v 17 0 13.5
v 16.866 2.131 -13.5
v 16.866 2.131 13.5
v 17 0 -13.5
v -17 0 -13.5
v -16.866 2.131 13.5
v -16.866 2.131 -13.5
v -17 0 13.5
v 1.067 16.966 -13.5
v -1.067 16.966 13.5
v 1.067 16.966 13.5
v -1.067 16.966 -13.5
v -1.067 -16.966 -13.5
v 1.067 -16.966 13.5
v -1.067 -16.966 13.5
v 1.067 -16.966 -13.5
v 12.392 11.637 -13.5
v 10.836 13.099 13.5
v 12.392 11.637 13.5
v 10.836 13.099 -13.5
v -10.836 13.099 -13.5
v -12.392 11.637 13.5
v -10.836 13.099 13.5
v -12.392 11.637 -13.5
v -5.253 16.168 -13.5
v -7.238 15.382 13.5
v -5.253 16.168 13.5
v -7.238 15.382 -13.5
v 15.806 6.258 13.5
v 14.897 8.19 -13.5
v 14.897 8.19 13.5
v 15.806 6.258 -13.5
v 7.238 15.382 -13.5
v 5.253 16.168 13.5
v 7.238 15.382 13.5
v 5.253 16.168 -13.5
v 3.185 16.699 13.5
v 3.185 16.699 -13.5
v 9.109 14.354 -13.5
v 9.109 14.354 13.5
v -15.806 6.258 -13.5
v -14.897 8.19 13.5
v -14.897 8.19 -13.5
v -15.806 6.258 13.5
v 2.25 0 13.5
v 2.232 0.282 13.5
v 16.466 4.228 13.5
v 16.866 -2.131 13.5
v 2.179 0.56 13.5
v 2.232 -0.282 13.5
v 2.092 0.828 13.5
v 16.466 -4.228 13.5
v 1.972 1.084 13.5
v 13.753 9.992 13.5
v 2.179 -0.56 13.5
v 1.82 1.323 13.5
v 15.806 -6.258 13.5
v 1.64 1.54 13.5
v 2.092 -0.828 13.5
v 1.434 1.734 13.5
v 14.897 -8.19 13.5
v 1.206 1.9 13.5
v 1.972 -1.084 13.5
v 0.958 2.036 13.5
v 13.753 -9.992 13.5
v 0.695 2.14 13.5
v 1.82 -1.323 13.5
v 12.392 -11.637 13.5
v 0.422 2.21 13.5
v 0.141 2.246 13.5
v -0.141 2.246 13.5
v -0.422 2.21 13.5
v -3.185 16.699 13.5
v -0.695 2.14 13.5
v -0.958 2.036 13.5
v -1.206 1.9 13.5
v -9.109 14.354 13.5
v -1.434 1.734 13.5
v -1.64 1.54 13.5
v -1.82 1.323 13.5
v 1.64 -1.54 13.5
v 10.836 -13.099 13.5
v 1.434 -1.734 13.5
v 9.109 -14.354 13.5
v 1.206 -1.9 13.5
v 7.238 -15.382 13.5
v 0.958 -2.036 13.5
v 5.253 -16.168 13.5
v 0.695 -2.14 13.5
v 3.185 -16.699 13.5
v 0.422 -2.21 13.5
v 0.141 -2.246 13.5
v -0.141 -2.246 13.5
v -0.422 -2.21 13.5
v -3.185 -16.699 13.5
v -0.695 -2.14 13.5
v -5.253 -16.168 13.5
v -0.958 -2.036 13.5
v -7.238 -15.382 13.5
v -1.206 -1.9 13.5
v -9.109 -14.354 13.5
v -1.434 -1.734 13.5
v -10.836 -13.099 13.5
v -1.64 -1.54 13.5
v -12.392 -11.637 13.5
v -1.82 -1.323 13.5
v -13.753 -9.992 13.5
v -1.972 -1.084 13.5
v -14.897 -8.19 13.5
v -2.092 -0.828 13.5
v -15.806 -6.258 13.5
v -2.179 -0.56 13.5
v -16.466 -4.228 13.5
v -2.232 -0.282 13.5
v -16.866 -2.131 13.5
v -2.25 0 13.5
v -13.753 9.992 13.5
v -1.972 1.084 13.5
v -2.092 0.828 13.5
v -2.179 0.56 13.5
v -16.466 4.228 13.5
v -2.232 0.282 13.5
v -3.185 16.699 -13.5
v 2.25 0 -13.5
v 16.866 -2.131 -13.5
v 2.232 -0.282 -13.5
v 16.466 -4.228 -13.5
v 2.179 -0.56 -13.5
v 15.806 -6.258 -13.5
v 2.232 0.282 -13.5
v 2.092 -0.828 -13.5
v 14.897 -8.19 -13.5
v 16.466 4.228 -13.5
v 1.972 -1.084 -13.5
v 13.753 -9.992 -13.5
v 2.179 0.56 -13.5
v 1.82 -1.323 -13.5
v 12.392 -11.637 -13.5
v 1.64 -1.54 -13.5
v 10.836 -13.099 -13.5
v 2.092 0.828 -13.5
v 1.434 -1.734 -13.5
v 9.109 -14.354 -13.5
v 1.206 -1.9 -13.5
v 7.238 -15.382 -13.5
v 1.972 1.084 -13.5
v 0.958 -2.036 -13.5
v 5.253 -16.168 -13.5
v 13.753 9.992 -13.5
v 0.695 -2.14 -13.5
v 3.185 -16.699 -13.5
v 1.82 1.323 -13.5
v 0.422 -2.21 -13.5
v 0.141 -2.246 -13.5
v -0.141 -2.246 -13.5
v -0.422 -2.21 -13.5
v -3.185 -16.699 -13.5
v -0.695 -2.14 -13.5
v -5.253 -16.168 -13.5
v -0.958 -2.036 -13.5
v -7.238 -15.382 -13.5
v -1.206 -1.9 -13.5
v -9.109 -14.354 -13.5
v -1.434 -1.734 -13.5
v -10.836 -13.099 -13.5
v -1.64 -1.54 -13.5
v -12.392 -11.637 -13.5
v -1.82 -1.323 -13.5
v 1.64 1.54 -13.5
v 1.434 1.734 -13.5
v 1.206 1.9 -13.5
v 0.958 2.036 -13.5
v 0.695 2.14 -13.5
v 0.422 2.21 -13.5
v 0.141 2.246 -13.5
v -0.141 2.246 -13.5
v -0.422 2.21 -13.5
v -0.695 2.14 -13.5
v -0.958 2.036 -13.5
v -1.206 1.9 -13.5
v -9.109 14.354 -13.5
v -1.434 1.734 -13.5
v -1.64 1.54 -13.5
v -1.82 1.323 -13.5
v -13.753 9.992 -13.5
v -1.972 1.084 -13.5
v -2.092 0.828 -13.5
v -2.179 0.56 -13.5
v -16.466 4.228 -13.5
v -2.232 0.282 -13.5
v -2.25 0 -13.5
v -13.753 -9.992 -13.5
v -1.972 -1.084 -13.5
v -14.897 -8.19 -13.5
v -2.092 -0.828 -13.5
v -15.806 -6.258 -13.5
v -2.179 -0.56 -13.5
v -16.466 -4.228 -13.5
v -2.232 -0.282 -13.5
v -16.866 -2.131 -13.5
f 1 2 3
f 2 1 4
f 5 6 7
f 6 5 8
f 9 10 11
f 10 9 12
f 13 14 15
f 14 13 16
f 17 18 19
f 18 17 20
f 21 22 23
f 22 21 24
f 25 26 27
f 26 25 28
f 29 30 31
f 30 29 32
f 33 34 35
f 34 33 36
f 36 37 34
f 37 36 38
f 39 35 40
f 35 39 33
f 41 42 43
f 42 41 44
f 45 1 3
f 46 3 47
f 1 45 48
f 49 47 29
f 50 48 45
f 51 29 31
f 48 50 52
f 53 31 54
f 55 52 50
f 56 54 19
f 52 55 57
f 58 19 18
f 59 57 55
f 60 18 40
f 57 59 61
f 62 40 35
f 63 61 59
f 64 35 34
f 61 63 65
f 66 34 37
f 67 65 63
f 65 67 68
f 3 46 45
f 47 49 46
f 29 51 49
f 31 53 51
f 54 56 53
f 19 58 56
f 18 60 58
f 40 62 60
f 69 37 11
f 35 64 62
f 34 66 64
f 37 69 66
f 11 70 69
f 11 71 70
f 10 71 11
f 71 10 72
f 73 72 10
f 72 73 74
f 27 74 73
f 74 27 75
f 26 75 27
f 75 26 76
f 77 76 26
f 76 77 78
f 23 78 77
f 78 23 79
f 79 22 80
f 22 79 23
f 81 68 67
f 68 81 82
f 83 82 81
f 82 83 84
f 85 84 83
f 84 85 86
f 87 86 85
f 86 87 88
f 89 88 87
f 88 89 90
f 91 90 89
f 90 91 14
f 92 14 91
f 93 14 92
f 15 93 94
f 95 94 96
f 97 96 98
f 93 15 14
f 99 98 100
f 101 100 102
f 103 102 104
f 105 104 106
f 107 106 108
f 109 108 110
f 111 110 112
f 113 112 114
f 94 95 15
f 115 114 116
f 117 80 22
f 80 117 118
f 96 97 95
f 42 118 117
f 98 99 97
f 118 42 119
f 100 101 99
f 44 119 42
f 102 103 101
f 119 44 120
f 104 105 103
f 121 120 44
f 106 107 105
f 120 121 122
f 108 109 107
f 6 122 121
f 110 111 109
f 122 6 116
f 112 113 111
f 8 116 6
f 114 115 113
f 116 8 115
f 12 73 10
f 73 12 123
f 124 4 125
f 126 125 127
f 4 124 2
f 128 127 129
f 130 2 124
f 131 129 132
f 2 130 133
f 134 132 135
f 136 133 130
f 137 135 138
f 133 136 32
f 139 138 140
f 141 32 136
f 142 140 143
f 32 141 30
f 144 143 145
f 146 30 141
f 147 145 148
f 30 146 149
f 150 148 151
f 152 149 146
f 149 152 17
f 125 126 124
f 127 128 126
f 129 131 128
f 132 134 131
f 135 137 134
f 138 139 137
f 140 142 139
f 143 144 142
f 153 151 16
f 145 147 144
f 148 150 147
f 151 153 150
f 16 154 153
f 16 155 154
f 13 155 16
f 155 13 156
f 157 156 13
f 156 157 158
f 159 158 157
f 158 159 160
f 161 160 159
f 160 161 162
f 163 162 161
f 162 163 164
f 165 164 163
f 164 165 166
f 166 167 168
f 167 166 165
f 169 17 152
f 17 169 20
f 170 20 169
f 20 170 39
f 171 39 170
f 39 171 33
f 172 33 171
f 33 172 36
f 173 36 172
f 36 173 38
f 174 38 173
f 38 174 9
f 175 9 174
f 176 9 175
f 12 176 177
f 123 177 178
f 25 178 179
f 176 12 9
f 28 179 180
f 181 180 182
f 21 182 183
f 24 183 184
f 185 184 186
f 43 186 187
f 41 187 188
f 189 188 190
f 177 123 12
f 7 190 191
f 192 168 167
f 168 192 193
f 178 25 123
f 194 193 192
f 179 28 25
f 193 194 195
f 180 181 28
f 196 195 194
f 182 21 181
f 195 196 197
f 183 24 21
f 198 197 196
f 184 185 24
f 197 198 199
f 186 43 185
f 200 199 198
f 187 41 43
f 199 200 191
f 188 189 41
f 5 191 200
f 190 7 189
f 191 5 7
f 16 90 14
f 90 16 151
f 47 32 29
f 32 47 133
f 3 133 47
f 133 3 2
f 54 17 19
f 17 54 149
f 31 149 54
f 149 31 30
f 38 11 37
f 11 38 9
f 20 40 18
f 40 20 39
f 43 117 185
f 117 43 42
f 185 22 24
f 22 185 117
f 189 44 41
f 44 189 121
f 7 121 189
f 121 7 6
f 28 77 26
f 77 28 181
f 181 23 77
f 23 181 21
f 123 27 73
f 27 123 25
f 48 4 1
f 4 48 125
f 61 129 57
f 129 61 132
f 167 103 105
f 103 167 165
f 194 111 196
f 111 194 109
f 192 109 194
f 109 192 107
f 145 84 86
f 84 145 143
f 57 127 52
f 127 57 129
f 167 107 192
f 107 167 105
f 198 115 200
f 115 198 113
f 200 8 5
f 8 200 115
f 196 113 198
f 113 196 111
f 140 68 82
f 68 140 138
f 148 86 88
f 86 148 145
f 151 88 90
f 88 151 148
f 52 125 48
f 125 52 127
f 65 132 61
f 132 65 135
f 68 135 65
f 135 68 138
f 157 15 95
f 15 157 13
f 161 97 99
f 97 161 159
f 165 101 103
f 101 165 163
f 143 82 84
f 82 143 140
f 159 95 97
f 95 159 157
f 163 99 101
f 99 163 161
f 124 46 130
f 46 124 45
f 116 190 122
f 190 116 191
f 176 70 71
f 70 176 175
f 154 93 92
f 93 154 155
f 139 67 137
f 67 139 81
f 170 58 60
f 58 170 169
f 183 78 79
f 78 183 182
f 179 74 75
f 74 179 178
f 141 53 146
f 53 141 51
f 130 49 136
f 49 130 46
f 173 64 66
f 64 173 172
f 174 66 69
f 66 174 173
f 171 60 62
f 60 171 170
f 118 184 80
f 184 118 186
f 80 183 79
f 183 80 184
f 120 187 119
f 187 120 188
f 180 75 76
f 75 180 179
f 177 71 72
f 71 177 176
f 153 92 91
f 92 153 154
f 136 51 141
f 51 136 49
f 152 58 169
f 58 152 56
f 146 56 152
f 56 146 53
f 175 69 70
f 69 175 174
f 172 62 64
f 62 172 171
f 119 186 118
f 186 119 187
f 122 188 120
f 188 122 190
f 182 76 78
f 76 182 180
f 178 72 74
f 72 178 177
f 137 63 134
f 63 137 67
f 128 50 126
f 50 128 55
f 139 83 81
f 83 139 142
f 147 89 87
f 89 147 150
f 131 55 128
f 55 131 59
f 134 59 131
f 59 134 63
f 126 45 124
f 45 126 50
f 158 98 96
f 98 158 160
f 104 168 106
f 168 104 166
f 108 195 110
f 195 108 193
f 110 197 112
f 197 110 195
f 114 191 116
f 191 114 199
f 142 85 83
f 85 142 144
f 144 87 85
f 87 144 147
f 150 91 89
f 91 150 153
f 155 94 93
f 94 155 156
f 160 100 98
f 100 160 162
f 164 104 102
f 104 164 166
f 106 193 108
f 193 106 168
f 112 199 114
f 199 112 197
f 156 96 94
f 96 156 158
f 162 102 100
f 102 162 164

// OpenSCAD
$fn = 50;


difference() {
	union() {
		translate(v = [0, 0, -13.5000000000]) {
			cylinder(h = 27, r = 17.0000000000);
		}
	}
	union() {
		translate(v = [0, 0, -100.0000000000]) {
			cylinder(h = 200, r = 2.2500000000);
		}
	}
}
